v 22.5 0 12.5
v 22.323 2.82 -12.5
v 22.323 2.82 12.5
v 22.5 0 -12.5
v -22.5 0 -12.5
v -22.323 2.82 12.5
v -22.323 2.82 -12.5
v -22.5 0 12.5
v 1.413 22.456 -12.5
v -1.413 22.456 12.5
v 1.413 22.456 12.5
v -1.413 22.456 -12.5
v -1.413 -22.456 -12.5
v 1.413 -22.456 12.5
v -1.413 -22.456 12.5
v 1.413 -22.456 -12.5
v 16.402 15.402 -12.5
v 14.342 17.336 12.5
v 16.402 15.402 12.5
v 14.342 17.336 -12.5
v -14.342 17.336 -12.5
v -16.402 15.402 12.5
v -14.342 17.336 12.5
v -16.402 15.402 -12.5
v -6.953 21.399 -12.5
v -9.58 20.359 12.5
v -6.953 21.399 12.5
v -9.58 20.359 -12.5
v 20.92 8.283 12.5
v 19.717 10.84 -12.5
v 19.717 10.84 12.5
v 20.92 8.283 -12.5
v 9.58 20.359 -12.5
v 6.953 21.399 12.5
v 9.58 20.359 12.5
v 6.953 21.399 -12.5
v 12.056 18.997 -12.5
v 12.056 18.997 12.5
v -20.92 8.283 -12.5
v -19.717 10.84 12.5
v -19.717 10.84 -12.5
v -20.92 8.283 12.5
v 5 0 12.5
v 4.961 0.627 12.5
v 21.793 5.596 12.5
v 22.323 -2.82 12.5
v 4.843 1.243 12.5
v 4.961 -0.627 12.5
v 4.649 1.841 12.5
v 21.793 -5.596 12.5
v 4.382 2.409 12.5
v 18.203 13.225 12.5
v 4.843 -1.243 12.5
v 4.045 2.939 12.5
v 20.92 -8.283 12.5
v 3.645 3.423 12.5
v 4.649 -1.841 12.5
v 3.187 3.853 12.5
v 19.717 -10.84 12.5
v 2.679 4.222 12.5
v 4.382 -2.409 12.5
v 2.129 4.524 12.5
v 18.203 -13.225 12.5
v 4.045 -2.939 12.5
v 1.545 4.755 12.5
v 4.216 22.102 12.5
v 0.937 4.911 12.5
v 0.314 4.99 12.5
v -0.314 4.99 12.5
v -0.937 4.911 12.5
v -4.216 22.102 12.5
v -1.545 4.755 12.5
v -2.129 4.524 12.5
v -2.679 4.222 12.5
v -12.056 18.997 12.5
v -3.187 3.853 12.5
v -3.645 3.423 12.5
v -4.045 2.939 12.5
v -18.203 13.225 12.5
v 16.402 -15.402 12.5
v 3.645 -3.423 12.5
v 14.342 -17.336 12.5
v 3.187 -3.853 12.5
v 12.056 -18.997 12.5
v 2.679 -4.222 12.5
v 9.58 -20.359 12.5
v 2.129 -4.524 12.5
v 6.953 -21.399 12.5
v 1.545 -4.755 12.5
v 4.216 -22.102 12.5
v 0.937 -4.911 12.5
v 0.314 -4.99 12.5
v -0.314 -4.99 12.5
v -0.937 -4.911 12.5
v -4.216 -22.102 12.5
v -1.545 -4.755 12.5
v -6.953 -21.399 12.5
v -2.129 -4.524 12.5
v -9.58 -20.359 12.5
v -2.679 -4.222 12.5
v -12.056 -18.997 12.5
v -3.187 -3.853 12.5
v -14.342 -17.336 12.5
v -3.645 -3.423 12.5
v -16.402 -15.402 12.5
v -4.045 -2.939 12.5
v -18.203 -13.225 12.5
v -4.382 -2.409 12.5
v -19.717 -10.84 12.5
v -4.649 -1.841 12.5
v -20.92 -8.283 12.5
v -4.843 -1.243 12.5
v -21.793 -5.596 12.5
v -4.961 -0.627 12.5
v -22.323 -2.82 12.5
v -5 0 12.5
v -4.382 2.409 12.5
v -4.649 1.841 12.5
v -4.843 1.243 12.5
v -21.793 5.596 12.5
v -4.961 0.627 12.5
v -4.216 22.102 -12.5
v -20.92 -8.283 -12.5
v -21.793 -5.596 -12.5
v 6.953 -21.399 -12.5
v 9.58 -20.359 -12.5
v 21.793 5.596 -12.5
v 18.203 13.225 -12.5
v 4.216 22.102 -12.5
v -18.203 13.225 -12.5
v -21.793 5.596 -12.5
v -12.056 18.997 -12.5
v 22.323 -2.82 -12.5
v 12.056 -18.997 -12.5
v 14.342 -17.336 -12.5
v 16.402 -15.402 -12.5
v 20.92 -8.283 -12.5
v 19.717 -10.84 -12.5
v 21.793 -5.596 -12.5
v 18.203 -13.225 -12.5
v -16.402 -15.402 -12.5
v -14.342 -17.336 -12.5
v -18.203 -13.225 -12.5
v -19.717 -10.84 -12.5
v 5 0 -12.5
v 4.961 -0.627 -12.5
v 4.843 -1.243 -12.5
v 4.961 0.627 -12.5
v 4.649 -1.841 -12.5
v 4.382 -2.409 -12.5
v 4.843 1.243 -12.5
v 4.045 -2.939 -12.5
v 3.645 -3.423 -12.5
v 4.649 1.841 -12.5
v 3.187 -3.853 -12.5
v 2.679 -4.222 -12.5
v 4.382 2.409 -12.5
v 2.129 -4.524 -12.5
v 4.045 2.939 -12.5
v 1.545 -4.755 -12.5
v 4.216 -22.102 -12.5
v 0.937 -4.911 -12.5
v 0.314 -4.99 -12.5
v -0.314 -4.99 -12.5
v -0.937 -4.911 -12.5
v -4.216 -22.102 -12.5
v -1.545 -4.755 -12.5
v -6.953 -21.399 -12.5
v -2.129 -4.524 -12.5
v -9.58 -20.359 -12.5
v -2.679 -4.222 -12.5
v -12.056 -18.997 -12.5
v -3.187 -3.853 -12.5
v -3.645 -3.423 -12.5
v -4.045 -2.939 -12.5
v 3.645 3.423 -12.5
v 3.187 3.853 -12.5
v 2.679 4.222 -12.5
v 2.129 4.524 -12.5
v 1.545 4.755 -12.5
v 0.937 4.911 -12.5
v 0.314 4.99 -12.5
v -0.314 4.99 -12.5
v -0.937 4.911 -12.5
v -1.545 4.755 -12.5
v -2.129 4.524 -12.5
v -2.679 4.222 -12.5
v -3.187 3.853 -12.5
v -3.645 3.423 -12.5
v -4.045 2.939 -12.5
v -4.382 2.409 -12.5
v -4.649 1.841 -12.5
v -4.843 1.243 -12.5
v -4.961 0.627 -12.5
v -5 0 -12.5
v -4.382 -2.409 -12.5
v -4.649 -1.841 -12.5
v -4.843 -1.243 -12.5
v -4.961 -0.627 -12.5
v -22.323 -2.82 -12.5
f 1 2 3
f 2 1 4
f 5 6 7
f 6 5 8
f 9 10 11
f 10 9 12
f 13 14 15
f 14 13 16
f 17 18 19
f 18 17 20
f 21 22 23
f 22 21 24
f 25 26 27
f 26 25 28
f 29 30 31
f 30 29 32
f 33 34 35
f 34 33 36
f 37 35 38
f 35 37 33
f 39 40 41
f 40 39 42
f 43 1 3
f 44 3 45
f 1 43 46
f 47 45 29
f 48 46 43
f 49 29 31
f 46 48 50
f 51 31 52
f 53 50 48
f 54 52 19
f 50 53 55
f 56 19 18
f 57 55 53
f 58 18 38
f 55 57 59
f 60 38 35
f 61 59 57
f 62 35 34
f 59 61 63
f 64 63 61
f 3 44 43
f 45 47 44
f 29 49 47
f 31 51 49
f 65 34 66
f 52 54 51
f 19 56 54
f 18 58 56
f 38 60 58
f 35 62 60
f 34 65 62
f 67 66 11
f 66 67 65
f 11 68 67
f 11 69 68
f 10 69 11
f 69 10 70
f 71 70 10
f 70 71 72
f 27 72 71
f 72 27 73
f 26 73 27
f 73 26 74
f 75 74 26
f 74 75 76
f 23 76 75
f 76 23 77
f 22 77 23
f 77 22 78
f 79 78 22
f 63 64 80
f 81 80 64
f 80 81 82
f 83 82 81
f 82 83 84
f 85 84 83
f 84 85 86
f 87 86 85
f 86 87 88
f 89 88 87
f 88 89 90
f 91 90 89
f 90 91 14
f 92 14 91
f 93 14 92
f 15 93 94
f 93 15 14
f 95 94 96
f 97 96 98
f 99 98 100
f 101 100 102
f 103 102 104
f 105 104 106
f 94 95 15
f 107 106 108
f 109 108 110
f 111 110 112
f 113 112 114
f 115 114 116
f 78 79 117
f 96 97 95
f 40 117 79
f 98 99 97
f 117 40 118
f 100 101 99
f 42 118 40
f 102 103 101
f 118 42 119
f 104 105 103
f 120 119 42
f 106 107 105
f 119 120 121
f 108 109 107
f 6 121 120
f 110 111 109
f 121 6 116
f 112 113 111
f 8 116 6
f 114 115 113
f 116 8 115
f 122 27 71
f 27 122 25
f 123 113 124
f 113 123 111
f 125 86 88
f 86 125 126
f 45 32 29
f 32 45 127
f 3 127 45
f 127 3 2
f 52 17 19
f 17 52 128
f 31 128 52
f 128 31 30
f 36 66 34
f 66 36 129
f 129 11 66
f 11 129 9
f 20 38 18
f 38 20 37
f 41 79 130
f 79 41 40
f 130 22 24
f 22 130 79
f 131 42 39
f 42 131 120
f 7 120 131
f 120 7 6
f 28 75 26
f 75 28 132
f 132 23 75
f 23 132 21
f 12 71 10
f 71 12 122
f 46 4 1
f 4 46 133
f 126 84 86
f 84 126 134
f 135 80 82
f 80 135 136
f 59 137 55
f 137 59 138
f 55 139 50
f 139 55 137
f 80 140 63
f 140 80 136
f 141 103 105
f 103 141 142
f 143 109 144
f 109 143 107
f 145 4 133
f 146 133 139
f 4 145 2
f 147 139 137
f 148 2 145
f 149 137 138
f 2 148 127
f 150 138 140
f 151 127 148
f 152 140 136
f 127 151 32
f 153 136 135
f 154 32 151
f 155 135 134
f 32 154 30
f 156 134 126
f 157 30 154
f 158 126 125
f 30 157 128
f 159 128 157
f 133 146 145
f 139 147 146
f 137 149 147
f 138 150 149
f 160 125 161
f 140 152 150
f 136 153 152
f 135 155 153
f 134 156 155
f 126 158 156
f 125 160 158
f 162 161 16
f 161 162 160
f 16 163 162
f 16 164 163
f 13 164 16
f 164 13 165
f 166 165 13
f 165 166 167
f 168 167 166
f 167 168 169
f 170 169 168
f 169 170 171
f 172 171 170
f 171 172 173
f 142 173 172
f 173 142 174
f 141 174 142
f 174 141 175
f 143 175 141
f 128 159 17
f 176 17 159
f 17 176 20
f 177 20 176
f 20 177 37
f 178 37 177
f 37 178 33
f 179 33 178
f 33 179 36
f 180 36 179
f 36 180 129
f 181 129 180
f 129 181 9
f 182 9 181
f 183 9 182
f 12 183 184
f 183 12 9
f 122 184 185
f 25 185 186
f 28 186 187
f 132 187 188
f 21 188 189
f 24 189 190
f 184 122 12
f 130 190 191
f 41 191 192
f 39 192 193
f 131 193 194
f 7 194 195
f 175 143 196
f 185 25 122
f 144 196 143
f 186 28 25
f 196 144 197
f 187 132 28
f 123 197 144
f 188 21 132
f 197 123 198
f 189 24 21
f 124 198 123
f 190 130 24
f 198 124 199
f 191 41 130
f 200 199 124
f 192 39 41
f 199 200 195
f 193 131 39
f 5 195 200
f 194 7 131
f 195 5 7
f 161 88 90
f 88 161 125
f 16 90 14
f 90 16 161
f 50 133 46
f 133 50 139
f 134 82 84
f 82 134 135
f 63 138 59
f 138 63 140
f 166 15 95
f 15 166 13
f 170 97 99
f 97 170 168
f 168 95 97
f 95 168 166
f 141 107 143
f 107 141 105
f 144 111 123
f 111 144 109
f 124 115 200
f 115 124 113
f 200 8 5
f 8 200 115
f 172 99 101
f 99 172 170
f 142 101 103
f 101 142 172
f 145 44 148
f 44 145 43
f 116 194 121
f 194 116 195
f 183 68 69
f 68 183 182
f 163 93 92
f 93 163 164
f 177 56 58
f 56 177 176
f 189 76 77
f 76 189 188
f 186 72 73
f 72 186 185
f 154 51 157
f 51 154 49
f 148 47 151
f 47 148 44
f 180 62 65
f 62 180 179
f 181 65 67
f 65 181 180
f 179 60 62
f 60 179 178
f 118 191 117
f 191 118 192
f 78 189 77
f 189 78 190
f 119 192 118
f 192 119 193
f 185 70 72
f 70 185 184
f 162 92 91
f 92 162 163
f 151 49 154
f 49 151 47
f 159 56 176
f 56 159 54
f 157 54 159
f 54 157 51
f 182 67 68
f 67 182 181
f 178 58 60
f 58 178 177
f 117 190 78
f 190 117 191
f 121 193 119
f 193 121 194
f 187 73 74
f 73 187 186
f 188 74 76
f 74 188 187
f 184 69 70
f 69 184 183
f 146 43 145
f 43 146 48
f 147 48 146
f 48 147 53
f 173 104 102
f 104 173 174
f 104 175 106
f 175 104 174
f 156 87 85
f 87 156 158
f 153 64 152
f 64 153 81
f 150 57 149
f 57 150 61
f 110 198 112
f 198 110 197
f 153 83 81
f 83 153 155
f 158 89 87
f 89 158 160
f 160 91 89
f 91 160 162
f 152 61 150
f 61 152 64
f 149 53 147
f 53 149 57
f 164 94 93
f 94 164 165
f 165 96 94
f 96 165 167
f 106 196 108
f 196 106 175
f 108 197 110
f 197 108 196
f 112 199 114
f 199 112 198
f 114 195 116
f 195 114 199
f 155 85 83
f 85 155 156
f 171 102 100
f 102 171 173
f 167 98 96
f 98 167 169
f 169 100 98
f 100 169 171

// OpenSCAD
$fn = 50;


difference() {
	union() {
		translate(v = [0, 0, -12.5000000000]) {
			cylinder(h = 25, r = 22.5000000000);
		}
	}
	union() {
		translate(v = [0, 0, -100.0000000000]) {
			cylinder(h = 200, r = 5);
		}
	}
}
